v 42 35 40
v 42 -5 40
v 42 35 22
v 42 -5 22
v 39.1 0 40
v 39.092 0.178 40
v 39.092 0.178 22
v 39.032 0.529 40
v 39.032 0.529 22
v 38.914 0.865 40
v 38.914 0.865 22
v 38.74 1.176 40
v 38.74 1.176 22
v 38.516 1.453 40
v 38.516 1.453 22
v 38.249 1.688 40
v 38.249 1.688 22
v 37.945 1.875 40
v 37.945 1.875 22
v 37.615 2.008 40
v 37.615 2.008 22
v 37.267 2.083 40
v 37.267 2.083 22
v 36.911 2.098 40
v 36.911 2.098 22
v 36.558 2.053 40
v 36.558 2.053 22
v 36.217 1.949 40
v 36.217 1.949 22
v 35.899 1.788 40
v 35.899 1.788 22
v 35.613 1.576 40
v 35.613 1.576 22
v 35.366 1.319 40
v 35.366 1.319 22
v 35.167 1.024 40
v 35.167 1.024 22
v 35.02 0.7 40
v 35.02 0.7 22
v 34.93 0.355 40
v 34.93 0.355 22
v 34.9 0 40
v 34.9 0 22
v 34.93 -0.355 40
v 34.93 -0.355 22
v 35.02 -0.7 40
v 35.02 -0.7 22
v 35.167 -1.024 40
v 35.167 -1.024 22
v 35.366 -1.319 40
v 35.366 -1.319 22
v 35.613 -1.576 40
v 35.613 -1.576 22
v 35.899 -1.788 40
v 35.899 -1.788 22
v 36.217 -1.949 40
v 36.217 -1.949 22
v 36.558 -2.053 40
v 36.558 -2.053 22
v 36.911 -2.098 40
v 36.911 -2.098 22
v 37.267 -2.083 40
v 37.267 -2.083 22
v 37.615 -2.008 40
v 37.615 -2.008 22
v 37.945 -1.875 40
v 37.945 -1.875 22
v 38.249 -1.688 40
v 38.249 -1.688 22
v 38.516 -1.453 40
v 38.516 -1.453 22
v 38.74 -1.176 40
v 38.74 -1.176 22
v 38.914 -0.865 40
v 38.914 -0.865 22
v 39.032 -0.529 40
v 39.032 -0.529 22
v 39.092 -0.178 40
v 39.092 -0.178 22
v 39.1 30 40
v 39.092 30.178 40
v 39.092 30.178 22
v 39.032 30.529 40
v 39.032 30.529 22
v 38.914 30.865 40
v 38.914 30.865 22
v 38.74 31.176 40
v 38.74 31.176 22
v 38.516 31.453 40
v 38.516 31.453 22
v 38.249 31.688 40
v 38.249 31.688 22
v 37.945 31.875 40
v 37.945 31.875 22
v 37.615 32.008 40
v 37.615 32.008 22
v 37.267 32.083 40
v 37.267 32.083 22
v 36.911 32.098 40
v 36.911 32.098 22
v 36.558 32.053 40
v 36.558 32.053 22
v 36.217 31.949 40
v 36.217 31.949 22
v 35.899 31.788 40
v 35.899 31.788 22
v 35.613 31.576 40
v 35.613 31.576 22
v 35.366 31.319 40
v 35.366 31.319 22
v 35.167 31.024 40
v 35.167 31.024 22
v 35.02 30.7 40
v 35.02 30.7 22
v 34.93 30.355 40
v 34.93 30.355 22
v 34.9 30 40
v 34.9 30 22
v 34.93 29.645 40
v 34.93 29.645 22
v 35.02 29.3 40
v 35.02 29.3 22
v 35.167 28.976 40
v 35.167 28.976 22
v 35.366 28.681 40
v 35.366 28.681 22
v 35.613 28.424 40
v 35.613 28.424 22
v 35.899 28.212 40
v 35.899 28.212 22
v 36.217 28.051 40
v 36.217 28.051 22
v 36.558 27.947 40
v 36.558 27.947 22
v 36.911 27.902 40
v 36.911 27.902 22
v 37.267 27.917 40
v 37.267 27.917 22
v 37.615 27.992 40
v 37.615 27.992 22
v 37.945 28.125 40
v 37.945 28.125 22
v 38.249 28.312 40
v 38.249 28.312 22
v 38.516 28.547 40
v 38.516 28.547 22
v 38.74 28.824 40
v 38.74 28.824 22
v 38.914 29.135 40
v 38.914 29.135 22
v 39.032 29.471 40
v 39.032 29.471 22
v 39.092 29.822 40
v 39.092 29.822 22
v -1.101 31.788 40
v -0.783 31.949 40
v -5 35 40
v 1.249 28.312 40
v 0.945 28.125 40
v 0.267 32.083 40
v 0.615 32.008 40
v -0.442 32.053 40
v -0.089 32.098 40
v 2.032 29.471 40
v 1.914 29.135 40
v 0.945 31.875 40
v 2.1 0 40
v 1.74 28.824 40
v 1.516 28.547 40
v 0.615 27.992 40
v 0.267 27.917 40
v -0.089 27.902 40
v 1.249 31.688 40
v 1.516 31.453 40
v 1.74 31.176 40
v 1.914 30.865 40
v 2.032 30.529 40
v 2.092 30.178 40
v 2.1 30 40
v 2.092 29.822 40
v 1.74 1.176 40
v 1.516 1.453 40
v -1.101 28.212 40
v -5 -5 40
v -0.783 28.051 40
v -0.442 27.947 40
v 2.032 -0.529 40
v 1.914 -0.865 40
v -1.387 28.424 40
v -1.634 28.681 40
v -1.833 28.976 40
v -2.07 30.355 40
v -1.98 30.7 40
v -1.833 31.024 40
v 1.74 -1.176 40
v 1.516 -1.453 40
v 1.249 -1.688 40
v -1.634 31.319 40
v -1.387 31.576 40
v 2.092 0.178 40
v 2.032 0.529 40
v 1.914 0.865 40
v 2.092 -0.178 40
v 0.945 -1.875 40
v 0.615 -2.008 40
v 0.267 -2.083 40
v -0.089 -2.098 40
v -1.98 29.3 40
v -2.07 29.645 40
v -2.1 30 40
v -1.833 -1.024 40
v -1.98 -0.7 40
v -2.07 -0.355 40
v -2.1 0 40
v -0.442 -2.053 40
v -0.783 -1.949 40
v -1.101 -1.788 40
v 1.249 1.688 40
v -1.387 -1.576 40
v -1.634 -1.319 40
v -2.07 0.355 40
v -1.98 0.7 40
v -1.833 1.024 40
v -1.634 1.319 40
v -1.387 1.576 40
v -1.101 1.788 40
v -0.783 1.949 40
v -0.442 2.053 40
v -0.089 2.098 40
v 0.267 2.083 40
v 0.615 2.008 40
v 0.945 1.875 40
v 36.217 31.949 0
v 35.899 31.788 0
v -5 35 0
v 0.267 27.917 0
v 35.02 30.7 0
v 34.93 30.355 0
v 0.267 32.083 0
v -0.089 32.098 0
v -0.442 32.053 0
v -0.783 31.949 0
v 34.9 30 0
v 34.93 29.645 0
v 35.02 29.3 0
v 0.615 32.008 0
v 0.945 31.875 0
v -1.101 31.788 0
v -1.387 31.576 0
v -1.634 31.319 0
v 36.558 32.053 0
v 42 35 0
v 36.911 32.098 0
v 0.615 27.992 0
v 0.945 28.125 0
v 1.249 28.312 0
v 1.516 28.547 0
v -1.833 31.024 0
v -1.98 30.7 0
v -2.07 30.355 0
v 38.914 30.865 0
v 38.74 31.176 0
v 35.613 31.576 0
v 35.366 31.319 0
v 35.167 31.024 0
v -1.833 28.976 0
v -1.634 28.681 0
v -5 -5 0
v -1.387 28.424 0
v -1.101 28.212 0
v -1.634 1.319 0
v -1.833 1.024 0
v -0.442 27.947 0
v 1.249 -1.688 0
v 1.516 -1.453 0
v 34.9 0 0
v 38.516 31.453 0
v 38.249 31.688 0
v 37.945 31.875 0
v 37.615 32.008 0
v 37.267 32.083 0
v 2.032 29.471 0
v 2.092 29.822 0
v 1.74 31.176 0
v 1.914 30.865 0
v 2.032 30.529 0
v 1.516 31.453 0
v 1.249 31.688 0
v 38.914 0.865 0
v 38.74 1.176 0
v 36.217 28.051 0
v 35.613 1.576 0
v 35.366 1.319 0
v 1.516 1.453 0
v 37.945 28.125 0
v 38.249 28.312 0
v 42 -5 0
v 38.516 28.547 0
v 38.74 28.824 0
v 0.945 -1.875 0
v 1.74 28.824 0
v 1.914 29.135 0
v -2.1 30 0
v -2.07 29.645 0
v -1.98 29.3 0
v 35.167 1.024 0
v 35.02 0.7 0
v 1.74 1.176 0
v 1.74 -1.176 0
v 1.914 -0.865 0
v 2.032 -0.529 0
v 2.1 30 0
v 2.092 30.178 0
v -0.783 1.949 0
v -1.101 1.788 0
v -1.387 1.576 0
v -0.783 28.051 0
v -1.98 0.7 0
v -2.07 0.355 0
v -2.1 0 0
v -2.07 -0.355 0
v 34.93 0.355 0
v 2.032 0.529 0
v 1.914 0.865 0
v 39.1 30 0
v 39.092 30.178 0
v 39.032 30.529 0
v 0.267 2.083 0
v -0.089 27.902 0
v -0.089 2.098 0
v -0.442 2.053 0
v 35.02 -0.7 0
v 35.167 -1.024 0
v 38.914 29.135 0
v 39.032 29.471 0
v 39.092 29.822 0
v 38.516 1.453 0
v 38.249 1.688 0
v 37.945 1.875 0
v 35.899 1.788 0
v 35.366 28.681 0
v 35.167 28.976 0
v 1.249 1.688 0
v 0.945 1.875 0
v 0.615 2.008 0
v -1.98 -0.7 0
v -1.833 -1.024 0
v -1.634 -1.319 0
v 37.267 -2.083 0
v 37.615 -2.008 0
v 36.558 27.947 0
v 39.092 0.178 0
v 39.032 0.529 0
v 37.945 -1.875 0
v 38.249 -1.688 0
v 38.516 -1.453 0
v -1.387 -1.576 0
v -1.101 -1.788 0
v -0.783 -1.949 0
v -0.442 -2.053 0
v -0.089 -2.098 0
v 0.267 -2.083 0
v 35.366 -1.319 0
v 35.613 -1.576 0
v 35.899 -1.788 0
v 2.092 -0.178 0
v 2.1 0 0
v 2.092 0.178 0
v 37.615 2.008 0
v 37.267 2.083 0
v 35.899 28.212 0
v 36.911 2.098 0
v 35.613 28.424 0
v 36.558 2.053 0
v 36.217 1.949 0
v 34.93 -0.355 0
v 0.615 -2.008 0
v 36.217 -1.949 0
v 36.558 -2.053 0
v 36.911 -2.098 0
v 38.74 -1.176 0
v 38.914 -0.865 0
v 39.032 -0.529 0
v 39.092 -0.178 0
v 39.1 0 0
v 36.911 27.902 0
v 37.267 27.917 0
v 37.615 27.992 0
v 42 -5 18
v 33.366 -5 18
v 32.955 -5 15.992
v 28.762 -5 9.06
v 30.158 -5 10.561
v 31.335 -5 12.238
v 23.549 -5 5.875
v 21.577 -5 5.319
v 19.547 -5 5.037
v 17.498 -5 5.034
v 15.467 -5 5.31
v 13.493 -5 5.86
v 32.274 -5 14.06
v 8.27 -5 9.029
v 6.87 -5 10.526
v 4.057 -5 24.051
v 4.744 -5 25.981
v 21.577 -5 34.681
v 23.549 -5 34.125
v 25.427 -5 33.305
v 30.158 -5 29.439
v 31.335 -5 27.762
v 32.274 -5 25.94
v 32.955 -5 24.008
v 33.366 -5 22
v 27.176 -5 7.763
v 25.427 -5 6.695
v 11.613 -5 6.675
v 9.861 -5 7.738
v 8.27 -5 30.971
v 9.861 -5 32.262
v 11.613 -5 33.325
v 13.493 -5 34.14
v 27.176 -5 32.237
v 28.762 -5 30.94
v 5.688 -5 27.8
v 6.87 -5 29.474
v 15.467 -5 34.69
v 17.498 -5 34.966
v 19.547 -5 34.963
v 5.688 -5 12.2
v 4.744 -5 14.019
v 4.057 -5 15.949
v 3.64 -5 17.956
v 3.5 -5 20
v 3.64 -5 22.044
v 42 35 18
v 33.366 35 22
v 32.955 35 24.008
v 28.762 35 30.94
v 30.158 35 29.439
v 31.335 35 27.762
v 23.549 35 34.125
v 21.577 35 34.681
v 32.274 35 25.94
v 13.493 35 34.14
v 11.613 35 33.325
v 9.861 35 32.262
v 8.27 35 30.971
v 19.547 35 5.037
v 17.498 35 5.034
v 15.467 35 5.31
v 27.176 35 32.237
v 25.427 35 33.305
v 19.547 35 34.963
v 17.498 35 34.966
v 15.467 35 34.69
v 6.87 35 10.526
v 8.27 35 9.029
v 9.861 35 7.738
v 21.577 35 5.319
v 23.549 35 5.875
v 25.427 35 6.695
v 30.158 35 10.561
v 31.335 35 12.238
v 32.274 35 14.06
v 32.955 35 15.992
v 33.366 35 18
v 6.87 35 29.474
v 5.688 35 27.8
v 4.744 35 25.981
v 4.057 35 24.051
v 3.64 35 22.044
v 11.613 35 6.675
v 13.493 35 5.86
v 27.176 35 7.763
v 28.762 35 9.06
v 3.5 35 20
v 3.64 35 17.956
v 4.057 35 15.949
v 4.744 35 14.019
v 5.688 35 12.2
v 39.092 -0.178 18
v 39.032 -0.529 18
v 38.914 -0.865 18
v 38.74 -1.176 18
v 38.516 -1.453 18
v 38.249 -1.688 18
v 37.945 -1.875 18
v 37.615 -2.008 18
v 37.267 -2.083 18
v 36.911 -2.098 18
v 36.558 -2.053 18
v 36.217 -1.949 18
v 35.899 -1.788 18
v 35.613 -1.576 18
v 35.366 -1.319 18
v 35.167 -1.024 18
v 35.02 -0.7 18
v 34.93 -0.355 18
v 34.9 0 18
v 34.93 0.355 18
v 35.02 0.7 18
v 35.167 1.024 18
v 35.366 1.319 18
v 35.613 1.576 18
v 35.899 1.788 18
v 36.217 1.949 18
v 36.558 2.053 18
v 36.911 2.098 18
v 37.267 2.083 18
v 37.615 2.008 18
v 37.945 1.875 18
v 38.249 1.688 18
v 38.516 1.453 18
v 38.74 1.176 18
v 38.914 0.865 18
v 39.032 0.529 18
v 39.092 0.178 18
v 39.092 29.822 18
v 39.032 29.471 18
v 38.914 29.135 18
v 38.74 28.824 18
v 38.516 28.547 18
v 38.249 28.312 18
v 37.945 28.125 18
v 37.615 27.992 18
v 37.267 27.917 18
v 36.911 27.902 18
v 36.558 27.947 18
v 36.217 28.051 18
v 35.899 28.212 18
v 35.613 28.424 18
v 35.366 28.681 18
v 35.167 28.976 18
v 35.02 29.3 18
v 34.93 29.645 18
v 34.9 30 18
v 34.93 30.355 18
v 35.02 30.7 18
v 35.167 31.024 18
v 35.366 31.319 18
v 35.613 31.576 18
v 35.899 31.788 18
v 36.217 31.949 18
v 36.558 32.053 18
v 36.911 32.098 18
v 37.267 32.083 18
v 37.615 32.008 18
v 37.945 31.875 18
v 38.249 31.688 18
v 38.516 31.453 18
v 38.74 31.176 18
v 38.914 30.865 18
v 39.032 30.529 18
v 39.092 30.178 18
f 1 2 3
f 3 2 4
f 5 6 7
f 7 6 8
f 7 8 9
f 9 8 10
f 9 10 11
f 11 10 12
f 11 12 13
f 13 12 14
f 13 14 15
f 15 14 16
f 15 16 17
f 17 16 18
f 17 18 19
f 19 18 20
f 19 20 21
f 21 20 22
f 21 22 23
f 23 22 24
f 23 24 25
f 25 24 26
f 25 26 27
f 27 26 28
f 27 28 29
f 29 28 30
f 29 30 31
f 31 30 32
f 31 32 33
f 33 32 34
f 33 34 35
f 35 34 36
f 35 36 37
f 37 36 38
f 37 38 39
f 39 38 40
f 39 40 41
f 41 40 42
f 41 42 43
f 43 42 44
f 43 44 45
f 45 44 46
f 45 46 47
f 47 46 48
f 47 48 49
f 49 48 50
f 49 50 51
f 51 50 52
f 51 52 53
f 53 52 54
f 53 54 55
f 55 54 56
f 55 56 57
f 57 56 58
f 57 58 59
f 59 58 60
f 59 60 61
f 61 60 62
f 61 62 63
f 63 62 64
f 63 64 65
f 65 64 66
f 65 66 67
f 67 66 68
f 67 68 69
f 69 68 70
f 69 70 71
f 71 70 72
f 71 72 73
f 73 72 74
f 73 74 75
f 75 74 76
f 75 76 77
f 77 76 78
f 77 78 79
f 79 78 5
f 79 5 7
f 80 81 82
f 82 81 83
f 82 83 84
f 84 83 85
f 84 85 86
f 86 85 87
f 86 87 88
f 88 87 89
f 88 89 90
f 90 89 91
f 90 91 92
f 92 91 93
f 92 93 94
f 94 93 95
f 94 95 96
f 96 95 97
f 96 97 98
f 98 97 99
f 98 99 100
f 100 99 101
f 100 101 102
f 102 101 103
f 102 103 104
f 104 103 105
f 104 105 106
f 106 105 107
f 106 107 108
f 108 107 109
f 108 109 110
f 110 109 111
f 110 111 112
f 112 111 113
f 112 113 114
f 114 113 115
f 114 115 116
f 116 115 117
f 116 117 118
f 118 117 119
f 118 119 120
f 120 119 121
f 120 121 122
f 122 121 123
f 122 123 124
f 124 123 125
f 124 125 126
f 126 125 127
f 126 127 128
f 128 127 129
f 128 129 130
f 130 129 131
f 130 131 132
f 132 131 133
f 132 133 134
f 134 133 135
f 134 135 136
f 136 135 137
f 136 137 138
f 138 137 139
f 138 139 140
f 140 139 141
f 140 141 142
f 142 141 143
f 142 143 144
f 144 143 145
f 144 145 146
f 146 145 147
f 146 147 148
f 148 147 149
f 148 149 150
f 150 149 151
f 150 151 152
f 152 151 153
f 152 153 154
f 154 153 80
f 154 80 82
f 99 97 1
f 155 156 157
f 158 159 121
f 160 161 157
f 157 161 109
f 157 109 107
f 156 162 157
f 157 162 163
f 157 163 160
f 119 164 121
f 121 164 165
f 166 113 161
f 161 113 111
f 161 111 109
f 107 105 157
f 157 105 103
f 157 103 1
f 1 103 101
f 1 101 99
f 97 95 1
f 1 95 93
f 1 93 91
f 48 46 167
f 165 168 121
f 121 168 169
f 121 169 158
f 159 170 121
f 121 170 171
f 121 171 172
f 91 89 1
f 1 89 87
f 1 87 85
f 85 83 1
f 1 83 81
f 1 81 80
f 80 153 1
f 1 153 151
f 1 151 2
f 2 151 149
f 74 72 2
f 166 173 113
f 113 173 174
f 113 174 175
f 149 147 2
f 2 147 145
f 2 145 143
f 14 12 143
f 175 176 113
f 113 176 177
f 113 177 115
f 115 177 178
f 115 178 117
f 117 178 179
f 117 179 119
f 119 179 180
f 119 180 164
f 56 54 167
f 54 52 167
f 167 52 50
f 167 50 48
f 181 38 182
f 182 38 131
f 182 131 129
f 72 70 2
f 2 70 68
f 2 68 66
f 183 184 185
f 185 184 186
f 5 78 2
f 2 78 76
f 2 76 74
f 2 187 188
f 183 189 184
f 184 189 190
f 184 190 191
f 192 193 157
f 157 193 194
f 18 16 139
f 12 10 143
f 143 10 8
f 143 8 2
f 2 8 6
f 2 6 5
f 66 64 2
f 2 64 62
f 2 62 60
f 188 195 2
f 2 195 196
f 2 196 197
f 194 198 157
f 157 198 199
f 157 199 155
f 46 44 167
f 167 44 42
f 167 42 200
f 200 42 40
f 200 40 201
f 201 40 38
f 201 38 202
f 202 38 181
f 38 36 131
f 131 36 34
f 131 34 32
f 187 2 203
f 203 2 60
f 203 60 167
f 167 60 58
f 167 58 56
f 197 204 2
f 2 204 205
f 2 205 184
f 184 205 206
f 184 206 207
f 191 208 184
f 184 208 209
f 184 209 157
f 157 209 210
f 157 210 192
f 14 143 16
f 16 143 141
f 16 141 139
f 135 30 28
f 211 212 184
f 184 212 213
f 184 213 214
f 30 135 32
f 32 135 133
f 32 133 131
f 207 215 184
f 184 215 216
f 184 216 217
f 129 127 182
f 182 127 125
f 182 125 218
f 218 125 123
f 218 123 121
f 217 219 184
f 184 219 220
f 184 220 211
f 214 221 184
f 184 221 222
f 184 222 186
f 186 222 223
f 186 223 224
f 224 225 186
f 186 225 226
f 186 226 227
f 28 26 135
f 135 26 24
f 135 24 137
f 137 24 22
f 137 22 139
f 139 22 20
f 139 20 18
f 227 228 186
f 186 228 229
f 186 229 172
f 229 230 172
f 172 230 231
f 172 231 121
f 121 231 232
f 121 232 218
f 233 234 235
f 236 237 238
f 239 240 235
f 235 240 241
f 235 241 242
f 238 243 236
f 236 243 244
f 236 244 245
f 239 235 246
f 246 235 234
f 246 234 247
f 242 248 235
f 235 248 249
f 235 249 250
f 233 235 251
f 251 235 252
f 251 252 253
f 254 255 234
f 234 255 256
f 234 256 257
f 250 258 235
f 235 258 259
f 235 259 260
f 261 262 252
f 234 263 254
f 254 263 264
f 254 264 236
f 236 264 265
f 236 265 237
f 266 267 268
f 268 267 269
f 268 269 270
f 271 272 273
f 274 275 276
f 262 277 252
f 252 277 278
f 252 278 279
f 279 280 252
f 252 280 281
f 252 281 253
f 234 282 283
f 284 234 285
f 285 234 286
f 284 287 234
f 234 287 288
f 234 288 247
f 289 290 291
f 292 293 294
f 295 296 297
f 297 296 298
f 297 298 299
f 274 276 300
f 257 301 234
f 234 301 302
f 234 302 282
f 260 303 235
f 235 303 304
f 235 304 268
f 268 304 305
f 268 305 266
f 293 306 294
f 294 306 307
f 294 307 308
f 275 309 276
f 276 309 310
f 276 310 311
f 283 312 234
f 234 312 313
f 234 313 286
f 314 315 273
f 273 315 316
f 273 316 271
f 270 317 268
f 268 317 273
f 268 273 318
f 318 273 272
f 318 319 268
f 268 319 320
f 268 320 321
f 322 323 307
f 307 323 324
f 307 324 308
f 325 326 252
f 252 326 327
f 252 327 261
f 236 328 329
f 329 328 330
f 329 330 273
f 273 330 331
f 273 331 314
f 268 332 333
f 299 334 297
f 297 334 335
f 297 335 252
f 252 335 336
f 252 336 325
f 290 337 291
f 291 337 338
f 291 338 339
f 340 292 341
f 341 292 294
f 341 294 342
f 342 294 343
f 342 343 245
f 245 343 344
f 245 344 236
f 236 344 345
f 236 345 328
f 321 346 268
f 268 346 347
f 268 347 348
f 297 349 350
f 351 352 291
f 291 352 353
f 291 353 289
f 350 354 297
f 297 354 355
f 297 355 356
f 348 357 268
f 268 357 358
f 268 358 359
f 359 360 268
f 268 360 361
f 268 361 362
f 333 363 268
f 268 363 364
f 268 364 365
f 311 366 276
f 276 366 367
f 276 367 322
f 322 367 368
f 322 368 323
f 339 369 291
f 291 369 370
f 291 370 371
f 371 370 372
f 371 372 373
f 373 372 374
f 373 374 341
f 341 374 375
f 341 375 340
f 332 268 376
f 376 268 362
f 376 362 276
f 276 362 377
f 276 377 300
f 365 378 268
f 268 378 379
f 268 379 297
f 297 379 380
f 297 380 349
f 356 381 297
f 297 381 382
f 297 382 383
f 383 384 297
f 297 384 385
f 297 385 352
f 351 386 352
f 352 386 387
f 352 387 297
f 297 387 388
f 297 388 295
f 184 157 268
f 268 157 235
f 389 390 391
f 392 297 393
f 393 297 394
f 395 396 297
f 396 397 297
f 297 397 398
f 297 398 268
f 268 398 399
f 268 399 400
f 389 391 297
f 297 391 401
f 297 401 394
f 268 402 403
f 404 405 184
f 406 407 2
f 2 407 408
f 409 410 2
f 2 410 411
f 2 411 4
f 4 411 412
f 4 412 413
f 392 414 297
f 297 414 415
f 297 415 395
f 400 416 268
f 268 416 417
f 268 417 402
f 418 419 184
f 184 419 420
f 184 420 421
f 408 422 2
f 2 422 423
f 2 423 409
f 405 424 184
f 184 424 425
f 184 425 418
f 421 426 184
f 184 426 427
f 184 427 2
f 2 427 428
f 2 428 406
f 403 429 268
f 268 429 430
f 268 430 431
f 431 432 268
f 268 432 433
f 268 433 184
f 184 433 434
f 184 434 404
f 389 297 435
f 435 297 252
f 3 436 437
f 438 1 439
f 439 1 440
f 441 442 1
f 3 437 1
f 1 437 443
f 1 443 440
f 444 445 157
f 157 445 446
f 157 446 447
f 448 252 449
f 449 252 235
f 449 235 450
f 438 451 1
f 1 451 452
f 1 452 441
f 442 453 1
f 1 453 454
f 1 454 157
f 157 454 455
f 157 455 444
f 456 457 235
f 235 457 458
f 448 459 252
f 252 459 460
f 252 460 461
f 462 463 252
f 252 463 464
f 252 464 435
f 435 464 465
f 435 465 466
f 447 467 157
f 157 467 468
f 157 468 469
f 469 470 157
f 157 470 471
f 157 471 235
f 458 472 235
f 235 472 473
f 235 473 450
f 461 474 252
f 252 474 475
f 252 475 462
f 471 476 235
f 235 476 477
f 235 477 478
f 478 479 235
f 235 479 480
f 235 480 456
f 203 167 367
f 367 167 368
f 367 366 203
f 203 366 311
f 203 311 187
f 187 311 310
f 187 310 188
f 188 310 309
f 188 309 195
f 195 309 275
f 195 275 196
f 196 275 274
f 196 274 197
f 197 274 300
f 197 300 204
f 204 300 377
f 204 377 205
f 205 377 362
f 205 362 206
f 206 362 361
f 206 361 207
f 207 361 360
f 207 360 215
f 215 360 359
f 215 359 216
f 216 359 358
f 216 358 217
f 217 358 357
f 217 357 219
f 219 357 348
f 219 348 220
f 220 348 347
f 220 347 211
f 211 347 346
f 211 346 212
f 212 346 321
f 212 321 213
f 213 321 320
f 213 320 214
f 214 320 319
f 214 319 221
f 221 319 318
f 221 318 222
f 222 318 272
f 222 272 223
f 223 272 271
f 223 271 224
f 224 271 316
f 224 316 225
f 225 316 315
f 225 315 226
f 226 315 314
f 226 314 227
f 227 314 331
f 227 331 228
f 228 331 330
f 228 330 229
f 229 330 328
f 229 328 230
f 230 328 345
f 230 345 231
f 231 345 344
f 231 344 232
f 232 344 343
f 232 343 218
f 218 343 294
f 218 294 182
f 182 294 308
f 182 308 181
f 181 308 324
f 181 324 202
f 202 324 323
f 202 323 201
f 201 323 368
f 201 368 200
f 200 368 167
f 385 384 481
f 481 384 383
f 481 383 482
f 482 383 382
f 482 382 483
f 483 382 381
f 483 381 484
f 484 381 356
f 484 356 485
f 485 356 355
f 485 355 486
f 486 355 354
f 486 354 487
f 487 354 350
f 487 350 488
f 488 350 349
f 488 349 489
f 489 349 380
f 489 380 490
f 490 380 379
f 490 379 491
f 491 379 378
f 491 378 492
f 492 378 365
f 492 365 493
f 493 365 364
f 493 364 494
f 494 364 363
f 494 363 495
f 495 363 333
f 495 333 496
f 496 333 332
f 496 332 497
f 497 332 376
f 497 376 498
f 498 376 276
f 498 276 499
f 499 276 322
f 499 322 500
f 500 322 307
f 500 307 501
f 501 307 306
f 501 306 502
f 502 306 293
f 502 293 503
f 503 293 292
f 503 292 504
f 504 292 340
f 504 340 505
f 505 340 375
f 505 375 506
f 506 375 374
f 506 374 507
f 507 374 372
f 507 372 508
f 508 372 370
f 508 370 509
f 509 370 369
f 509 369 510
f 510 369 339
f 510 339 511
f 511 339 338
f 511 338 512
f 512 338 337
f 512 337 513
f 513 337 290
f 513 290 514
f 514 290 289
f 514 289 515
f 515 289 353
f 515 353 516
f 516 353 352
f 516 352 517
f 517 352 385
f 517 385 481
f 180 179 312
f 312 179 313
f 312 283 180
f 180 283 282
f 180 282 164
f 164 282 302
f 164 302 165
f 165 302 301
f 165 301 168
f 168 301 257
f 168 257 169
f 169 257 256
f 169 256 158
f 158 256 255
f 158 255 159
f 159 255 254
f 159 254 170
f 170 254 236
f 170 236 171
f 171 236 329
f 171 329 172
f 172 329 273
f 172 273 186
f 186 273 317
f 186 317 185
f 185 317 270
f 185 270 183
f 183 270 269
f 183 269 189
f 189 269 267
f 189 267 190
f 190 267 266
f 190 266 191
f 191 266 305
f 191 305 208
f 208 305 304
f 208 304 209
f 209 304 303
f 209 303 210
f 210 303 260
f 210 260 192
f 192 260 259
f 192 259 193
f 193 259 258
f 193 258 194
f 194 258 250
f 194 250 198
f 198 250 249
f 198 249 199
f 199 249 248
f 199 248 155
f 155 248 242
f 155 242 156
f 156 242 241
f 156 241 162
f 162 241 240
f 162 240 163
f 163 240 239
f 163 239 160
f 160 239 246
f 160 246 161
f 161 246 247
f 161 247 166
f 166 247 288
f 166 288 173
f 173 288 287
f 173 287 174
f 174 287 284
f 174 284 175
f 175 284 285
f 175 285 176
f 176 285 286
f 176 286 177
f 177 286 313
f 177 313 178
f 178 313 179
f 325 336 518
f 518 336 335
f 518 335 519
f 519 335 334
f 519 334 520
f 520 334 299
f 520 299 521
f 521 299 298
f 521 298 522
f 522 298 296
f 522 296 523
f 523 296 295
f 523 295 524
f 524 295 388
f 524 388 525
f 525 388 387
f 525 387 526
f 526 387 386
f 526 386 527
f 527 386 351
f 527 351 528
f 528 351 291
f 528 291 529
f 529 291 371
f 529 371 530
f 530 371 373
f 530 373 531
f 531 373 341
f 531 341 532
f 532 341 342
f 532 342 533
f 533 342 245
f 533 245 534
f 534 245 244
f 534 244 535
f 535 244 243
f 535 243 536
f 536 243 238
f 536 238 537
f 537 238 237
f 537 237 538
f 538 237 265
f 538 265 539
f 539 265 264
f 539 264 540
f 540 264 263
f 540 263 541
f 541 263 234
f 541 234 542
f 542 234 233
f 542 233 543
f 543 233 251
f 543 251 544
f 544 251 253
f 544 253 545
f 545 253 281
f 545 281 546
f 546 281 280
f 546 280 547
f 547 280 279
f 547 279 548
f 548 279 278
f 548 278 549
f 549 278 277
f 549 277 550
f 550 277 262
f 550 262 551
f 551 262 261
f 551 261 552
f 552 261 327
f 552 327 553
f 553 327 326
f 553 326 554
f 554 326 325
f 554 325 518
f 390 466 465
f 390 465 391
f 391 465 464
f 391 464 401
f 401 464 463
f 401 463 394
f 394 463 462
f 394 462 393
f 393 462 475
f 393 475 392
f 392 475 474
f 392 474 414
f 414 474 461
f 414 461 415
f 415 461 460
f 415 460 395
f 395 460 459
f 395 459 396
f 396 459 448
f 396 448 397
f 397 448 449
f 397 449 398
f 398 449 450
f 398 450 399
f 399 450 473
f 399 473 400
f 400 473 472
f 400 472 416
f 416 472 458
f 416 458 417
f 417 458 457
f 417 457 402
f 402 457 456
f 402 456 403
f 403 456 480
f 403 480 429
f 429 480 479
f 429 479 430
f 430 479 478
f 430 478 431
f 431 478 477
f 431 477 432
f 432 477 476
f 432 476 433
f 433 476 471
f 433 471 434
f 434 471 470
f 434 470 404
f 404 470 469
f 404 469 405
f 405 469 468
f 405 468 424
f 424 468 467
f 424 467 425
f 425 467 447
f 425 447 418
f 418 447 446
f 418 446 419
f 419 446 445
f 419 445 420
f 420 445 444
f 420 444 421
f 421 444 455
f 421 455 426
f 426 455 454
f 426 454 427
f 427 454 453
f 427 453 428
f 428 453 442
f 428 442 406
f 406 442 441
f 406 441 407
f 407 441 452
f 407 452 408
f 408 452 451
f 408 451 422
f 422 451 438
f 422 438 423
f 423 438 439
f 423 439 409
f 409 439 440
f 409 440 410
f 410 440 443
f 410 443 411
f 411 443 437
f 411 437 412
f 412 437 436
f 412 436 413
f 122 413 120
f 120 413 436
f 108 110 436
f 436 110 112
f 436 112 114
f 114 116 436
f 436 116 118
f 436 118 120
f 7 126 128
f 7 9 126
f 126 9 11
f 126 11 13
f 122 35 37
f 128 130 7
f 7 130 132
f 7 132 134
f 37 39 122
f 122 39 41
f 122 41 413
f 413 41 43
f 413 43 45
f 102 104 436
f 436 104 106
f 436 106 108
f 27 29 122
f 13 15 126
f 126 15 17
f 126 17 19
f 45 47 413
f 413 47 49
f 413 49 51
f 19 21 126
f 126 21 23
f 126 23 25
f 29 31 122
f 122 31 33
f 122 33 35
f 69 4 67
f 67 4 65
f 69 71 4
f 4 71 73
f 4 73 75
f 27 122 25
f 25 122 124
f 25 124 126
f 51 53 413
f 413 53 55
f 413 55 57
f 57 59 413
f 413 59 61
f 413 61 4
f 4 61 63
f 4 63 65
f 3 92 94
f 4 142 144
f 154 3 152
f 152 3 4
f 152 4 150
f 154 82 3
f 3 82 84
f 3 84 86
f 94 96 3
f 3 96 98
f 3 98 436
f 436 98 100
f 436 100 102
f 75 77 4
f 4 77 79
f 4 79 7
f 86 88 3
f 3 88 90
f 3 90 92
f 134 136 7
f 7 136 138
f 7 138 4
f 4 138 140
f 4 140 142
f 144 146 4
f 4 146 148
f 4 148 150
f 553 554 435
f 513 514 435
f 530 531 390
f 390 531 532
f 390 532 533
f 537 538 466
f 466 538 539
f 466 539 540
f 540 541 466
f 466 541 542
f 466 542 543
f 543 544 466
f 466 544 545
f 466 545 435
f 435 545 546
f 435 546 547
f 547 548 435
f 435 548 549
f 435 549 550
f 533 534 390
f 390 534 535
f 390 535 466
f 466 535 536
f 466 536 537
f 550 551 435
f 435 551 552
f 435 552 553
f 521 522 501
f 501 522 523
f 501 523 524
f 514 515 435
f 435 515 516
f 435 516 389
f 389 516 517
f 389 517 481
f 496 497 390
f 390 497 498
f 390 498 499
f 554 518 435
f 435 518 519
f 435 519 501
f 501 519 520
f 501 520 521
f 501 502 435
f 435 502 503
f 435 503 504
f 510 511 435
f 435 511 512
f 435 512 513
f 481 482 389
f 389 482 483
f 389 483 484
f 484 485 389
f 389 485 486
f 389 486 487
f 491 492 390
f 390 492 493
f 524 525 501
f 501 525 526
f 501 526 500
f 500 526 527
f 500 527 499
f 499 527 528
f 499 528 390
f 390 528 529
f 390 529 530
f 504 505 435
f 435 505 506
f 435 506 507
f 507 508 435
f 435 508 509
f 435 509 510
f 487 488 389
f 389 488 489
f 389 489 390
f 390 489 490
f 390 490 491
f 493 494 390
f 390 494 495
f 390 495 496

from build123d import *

# Parameters (mm, degrees)
SKETCH1_W           = 47
SKETCH1_H           = 40
SKETCH1_R           = 2.1
BOSS_EXTRUDE1_DEPTH = 40
SKETCH6_OUTSIDE_W   = 63.71
SKETCH6_OUTSIDE_H   = 56.71
SKETCH6_OUTSIDE_W_2 = 47
SKETCH6_OUTSIDE_H_2 = 40
SKETCH6_OUTSIDE_R   = 15
CUT_EXTRUDE5_DEPTH  = 71.455659815
CUT_EXTRUDE6_DEPTH  = 71.455659815


with BuildPart() as part:
    # Sketch1 → Boss-Extrude1 (new body)
    with BuildSketch(Plane.XY):
        with Locations((18.5, 15)):
            Rectangle(SKETCH1_W, SKETCH1_H)
        Circle(SKETCH1_R, mode=Mode.SUBTRACT)
        with Locations((37, 0)):
            Circle(SKETCH1_R, mode=Mode.SUBTRACT)
        with Locations((0, 30)):
            Circle(SKETCH1_R, mode=Mode.SUBTRACT)
        with Locations((37, 30)):
            Circle(SKETCH1_R, mode=Mode.SUBTRACT)
    extrude(amount=BOSS_EXTRUDE1_DEPTH)

    # Sketch6 outside → Cut-Extrude5 (cut, through all)
    # profile 1 of 2: a face of its own
    with BuildSketch(Plane(origin=(0, 35, 0), x_dir=(1, 0, 0), z_dir=(0, 1, 0))):
        with Locations((18.5, -20)):
            Rectangle(SKETCH6_OUTSIDE_W, SKETCH6_OUTSIDE_H)
        with Locations((18.5, -20)):
            Rectangle(SKETCH6_OUTSIDE_W_2, SKETCH6_OUTSIDE_H_2, mode=Mode.SUBTRACT)
    # profile 2 of 2: a face of its own
    with BuildSketch(Plane(origin=(0, 35, 0), x_dir=(1, 0, 0), z_dir=(0, 1, 0))):
        with Locations(Location((18.5, -20, 0), (0, 0, 270))):
            Circle(SKETCH6_OUTSIDE_R)
    extrude(amount=-CUT_EXTRUDE5_DEPTH, mode=Mode.SUBTRACT)

    # Sketch7 → Cut-Extrude6 (cut, through all)
    with BuildSketch(Plane(origin=(0, 35, 0), x_dir=(1, 0, 0), z_dir=(0, 1, 0))):
        with BuildLine():
            Line((33.5, -20), (42, -20))
            Line((42, -20), (42, -18))
            Line((42, -18), (33.366068747, -18))
            ThreePointArc((33.366068747, -18), (33.466479733, -18.997760311), (33.5, -20))
        make_face()
        with BuildLine():
            Line((42, -22), (42, -20))
            Line((42, -20), (33.5, -20))
            ThreePointArc((33.5, -20), (33.466479733, -21.002239689), (33.366068747, -22))
            Line((33.366068747, -22), (42, -22))
        make_face()
    extrude(amount=-CUT_EXTRUDE6_DEPTH, mode=Mode.SUBTRACT)


solid = part.part
